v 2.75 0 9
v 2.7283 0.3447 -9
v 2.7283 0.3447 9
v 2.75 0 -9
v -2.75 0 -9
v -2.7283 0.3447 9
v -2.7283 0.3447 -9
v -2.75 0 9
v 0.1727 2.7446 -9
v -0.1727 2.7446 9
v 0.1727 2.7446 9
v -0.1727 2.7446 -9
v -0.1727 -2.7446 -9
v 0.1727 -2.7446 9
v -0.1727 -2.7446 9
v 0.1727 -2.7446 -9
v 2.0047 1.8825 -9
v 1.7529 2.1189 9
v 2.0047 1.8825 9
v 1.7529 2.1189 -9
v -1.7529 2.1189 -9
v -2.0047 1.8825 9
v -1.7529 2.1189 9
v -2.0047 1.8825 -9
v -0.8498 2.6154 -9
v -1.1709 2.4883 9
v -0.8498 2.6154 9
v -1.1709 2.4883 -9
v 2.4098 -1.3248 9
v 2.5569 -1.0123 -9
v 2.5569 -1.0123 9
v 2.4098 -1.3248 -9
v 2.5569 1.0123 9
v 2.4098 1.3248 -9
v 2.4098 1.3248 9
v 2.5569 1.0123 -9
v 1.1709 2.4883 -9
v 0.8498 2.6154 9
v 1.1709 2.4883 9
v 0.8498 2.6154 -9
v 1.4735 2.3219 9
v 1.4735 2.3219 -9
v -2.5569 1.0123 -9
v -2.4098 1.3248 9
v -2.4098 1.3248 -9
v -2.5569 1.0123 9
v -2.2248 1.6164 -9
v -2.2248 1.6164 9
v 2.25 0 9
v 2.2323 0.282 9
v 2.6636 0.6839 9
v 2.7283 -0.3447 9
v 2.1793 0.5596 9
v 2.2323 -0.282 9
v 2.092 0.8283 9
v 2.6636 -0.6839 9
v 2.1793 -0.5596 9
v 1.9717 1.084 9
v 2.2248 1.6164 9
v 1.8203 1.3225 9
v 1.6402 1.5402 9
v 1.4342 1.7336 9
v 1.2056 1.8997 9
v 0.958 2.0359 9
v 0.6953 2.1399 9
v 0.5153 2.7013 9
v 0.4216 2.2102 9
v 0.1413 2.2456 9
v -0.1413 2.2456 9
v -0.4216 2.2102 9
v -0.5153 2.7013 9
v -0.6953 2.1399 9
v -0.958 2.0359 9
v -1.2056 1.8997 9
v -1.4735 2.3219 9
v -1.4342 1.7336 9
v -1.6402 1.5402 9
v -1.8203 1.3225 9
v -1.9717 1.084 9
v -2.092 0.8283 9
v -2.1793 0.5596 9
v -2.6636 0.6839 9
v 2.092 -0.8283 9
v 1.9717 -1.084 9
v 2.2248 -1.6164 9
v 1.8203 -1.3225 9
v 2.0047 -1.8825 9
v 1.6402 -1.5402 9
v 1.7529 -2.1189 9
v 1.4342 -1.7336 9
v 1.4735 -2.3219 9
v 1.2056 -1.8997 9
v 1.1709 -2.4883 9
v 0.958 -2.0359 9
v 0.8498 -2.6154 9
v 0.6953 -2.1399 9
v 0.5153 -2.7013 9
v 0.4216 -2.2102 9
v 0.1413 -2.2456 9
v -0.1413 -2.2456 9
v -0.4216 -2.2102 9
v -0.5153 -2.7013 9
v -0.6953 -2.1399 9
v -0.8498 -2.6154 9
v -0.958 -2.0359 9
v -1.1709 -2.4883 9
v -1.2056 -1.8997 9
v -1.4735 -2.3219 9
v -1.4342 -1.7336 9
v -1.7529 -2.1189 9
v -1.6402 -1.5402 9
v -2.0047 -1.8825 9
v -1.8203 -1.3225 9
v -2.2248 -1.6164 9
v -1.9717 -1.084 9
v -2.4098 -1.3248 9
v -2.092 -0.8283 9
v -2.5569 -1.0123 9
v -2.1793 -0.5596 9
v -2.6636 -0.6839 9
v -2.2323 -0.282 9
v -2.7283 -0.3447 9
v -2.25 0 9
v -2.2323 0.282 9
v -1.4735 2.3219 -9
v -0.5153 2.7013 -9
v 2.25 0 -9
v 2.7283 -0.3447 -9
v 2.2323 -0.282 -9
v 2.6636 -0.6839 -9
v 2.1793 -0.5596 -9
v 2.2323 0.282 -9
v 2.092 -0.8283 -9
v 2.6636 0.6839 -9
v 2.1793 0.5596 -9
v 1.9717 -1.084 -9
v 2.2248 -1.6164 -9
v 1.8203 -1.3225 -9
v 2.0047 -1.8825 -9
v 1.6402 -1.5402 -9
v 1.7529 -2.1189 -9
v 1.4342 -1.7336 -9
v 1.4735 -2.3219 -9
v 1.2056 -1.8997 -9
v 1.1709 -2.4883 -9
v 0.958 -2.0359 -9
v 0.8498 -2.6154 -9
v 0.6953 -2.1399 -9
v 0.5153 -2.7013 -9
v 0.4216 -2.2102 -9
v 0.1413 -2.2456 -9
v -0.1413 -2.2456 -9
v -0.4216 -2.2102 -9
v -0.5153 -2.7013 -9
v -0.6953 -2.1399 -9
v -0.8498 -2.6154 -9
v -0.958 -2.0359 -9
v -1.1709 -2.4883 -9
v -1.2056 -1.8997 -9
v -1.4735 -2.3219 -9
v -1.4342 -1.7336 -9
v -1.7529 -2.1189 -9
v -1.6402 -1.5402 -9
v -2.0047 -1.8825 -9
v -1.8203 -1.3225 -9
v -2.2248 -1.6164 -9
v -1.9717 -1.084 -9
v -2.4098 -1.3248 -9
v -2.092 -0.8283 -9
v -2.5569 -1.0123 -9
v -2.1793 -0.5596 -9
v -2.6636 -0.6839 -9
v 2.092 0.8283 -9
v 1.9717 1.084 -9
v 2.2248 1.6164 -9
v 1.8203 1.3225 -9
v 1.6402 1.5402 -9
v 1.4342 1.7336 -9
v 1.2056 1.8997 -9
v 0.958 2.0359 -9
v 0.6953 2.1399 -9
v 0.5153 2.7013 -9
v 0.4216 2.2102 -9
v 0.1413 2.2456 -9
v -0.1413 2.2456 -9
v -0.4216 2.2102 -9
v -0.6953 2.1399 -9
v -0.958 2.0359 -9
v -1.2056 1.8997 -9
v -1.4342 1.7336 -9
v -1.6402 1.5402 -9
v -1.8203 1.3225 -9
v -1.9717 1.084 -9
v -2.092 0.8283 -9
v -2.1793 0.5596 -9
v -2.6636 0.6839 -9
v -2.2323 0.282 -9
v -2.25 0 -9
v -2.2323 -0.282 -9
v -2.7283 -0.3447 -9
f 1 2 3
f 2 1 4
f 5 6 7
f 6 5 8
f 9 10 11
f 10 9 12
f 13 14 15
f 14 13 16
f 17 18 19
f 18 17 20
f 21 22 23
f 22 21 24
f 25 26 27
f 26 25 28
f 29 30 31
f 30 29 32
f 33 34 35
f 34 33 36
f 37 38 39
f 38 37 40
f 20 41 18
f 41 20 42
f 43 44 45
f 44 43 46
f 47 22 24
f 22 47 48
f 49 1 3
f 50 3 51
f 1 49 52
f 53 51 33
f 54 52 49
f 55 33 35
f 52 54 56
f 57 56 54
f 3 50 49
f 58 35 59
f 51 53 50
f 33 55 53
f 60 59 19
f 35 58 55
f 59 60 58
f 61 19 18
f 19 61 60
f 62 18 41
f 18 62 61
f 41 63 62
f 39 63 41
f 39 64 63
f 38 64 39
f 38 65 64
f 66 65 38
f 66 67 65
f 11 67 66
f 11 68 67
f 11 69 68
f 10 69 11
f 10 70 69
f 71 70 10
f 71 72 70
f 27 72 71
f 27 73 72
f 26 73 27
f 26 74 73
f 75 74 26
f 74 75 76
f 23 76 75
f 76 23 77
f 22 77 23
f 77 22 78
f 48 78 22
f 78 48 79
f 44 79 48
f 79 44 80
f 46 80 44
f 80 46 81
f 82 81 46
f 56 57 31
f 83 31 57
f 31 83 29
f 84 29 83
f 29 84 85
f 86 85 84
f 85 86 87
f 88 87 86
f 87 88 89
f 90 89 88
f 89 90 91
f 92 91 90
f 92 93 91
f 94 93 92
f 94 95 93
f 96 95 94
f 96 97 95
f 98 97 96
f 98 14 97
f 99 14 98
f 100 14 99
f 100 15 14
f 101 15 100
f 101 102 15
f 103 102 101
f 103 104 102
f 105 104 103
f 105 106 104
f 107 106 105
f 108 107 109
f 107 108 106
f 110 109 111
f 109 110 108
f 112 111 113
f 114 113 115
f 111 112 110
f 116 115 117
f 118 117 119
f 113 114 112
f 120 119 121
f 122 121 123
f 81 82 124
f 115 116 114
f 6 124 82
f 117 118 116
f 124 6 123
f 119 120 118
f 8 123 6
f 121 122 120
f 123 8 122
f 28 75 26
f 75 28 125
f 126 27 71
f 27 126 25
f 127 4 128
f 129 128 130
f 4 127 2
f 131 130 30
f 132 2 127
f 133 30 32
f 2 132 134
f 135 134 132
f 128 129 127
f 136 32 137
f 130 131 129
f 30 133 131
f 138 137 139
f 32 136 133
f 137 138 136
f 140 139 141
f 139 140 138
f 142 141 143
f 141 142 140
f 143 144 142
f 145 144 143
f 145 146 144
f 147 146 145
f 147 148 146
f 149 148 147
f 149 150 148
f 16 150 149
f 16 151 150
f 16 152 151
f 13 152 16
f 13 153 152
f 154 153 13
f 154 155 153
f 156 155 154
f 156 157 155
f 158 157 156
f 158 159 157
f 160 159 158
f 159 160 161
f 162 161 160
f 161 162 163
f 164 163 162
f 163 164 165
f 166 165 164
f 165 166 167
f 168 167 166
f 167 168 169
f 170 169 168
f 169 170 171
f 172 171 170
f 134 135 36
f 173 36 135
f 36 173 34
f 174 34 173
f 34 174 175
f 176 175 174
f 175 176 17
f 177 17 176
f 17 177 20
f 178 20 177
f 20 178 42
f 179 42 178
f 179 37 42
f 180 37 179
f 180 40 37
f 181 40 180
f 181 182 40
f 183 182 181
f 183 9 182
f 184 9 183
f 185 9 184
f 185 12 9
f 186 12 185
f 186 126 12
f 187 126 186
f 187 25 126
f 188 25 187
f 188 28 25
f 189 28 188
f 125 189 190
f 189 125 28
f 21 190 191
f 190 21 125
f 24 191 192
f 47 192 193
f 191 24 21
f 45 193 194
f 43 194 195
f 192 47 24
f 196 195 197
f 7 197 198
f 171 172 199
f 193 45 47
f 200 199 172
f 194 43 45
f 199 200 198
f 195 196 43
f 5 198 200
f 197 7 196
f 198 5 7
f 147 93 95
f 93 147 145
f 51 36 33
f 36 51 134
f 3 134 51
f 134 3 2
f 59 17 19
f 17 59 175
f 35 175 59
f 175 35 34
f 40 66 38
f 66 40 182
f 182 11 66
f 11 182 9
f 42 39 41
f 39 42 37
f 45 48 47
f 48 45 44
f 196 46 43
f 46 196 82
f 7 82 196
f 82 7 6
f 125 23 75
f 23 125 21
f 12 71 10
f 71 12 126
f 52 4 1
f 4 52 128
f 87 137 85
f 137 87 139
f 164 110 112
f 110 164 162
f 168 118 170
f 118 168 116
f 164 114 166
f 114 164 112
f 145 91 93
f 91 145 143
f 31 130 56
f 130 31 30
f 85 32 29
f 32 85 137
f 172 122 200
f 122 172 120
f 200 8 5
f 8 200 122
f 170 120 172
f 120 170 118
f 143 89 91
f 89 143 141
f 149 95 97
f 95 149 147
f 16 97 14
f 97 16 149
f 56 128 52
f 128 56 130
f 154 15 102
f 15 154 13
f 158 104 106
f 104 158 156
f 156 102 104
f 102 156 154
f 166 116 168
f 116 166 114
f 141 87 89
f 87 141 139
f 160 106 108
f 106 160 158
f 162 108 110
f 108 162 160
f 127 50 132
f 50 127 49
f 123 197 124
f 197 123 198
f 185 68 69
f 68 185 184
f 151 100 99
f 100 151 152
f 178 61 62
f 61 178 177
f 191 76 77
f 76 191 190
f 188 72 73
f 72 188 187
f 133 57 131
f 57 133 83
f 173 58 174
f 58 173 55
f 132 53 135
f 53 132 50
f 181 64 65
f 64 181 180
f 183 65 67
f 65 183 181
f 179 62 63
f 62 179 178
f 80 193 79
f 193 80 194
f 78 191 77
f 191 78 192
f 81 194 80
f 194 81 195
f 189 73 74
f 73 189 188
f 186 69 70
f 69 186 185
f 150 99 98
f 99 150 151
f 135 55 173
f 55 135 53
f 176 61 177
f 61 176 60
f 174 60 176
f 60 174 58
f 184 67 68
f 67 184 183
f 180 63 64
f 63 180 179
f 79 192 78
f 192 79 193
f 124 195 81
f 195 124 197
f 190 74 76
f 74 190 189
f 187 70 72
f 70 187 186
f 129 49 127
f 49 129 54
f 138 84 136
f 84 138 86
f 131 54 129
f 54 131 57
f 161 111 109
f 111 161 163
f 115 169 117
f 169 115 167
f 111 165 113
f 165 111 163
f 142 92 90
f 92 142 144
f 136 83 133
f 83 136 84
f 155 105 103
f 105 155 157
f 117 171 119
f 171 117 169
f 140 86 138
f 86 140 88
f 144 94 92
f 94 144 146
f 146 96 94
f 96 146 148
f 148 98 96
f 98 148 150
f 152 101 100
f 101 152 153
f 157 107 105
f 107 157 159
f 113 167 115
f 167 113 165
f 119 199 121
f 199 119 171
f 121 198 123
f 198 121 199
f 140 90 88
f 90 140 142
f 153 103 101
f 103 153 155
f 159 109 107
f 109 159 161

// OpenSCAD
$fn = 50;


difference() {
	union() {
		translate(v = [0, 0, -9.0000000000]) {
			cylinder(h = 18, r = 2.7500000000);
		}
	}
	union() {
		translate(v = [0, 0, -100.0000000000]) {
			cylinder(h = 200, r = 2.2500000000);
		}
	}
}
